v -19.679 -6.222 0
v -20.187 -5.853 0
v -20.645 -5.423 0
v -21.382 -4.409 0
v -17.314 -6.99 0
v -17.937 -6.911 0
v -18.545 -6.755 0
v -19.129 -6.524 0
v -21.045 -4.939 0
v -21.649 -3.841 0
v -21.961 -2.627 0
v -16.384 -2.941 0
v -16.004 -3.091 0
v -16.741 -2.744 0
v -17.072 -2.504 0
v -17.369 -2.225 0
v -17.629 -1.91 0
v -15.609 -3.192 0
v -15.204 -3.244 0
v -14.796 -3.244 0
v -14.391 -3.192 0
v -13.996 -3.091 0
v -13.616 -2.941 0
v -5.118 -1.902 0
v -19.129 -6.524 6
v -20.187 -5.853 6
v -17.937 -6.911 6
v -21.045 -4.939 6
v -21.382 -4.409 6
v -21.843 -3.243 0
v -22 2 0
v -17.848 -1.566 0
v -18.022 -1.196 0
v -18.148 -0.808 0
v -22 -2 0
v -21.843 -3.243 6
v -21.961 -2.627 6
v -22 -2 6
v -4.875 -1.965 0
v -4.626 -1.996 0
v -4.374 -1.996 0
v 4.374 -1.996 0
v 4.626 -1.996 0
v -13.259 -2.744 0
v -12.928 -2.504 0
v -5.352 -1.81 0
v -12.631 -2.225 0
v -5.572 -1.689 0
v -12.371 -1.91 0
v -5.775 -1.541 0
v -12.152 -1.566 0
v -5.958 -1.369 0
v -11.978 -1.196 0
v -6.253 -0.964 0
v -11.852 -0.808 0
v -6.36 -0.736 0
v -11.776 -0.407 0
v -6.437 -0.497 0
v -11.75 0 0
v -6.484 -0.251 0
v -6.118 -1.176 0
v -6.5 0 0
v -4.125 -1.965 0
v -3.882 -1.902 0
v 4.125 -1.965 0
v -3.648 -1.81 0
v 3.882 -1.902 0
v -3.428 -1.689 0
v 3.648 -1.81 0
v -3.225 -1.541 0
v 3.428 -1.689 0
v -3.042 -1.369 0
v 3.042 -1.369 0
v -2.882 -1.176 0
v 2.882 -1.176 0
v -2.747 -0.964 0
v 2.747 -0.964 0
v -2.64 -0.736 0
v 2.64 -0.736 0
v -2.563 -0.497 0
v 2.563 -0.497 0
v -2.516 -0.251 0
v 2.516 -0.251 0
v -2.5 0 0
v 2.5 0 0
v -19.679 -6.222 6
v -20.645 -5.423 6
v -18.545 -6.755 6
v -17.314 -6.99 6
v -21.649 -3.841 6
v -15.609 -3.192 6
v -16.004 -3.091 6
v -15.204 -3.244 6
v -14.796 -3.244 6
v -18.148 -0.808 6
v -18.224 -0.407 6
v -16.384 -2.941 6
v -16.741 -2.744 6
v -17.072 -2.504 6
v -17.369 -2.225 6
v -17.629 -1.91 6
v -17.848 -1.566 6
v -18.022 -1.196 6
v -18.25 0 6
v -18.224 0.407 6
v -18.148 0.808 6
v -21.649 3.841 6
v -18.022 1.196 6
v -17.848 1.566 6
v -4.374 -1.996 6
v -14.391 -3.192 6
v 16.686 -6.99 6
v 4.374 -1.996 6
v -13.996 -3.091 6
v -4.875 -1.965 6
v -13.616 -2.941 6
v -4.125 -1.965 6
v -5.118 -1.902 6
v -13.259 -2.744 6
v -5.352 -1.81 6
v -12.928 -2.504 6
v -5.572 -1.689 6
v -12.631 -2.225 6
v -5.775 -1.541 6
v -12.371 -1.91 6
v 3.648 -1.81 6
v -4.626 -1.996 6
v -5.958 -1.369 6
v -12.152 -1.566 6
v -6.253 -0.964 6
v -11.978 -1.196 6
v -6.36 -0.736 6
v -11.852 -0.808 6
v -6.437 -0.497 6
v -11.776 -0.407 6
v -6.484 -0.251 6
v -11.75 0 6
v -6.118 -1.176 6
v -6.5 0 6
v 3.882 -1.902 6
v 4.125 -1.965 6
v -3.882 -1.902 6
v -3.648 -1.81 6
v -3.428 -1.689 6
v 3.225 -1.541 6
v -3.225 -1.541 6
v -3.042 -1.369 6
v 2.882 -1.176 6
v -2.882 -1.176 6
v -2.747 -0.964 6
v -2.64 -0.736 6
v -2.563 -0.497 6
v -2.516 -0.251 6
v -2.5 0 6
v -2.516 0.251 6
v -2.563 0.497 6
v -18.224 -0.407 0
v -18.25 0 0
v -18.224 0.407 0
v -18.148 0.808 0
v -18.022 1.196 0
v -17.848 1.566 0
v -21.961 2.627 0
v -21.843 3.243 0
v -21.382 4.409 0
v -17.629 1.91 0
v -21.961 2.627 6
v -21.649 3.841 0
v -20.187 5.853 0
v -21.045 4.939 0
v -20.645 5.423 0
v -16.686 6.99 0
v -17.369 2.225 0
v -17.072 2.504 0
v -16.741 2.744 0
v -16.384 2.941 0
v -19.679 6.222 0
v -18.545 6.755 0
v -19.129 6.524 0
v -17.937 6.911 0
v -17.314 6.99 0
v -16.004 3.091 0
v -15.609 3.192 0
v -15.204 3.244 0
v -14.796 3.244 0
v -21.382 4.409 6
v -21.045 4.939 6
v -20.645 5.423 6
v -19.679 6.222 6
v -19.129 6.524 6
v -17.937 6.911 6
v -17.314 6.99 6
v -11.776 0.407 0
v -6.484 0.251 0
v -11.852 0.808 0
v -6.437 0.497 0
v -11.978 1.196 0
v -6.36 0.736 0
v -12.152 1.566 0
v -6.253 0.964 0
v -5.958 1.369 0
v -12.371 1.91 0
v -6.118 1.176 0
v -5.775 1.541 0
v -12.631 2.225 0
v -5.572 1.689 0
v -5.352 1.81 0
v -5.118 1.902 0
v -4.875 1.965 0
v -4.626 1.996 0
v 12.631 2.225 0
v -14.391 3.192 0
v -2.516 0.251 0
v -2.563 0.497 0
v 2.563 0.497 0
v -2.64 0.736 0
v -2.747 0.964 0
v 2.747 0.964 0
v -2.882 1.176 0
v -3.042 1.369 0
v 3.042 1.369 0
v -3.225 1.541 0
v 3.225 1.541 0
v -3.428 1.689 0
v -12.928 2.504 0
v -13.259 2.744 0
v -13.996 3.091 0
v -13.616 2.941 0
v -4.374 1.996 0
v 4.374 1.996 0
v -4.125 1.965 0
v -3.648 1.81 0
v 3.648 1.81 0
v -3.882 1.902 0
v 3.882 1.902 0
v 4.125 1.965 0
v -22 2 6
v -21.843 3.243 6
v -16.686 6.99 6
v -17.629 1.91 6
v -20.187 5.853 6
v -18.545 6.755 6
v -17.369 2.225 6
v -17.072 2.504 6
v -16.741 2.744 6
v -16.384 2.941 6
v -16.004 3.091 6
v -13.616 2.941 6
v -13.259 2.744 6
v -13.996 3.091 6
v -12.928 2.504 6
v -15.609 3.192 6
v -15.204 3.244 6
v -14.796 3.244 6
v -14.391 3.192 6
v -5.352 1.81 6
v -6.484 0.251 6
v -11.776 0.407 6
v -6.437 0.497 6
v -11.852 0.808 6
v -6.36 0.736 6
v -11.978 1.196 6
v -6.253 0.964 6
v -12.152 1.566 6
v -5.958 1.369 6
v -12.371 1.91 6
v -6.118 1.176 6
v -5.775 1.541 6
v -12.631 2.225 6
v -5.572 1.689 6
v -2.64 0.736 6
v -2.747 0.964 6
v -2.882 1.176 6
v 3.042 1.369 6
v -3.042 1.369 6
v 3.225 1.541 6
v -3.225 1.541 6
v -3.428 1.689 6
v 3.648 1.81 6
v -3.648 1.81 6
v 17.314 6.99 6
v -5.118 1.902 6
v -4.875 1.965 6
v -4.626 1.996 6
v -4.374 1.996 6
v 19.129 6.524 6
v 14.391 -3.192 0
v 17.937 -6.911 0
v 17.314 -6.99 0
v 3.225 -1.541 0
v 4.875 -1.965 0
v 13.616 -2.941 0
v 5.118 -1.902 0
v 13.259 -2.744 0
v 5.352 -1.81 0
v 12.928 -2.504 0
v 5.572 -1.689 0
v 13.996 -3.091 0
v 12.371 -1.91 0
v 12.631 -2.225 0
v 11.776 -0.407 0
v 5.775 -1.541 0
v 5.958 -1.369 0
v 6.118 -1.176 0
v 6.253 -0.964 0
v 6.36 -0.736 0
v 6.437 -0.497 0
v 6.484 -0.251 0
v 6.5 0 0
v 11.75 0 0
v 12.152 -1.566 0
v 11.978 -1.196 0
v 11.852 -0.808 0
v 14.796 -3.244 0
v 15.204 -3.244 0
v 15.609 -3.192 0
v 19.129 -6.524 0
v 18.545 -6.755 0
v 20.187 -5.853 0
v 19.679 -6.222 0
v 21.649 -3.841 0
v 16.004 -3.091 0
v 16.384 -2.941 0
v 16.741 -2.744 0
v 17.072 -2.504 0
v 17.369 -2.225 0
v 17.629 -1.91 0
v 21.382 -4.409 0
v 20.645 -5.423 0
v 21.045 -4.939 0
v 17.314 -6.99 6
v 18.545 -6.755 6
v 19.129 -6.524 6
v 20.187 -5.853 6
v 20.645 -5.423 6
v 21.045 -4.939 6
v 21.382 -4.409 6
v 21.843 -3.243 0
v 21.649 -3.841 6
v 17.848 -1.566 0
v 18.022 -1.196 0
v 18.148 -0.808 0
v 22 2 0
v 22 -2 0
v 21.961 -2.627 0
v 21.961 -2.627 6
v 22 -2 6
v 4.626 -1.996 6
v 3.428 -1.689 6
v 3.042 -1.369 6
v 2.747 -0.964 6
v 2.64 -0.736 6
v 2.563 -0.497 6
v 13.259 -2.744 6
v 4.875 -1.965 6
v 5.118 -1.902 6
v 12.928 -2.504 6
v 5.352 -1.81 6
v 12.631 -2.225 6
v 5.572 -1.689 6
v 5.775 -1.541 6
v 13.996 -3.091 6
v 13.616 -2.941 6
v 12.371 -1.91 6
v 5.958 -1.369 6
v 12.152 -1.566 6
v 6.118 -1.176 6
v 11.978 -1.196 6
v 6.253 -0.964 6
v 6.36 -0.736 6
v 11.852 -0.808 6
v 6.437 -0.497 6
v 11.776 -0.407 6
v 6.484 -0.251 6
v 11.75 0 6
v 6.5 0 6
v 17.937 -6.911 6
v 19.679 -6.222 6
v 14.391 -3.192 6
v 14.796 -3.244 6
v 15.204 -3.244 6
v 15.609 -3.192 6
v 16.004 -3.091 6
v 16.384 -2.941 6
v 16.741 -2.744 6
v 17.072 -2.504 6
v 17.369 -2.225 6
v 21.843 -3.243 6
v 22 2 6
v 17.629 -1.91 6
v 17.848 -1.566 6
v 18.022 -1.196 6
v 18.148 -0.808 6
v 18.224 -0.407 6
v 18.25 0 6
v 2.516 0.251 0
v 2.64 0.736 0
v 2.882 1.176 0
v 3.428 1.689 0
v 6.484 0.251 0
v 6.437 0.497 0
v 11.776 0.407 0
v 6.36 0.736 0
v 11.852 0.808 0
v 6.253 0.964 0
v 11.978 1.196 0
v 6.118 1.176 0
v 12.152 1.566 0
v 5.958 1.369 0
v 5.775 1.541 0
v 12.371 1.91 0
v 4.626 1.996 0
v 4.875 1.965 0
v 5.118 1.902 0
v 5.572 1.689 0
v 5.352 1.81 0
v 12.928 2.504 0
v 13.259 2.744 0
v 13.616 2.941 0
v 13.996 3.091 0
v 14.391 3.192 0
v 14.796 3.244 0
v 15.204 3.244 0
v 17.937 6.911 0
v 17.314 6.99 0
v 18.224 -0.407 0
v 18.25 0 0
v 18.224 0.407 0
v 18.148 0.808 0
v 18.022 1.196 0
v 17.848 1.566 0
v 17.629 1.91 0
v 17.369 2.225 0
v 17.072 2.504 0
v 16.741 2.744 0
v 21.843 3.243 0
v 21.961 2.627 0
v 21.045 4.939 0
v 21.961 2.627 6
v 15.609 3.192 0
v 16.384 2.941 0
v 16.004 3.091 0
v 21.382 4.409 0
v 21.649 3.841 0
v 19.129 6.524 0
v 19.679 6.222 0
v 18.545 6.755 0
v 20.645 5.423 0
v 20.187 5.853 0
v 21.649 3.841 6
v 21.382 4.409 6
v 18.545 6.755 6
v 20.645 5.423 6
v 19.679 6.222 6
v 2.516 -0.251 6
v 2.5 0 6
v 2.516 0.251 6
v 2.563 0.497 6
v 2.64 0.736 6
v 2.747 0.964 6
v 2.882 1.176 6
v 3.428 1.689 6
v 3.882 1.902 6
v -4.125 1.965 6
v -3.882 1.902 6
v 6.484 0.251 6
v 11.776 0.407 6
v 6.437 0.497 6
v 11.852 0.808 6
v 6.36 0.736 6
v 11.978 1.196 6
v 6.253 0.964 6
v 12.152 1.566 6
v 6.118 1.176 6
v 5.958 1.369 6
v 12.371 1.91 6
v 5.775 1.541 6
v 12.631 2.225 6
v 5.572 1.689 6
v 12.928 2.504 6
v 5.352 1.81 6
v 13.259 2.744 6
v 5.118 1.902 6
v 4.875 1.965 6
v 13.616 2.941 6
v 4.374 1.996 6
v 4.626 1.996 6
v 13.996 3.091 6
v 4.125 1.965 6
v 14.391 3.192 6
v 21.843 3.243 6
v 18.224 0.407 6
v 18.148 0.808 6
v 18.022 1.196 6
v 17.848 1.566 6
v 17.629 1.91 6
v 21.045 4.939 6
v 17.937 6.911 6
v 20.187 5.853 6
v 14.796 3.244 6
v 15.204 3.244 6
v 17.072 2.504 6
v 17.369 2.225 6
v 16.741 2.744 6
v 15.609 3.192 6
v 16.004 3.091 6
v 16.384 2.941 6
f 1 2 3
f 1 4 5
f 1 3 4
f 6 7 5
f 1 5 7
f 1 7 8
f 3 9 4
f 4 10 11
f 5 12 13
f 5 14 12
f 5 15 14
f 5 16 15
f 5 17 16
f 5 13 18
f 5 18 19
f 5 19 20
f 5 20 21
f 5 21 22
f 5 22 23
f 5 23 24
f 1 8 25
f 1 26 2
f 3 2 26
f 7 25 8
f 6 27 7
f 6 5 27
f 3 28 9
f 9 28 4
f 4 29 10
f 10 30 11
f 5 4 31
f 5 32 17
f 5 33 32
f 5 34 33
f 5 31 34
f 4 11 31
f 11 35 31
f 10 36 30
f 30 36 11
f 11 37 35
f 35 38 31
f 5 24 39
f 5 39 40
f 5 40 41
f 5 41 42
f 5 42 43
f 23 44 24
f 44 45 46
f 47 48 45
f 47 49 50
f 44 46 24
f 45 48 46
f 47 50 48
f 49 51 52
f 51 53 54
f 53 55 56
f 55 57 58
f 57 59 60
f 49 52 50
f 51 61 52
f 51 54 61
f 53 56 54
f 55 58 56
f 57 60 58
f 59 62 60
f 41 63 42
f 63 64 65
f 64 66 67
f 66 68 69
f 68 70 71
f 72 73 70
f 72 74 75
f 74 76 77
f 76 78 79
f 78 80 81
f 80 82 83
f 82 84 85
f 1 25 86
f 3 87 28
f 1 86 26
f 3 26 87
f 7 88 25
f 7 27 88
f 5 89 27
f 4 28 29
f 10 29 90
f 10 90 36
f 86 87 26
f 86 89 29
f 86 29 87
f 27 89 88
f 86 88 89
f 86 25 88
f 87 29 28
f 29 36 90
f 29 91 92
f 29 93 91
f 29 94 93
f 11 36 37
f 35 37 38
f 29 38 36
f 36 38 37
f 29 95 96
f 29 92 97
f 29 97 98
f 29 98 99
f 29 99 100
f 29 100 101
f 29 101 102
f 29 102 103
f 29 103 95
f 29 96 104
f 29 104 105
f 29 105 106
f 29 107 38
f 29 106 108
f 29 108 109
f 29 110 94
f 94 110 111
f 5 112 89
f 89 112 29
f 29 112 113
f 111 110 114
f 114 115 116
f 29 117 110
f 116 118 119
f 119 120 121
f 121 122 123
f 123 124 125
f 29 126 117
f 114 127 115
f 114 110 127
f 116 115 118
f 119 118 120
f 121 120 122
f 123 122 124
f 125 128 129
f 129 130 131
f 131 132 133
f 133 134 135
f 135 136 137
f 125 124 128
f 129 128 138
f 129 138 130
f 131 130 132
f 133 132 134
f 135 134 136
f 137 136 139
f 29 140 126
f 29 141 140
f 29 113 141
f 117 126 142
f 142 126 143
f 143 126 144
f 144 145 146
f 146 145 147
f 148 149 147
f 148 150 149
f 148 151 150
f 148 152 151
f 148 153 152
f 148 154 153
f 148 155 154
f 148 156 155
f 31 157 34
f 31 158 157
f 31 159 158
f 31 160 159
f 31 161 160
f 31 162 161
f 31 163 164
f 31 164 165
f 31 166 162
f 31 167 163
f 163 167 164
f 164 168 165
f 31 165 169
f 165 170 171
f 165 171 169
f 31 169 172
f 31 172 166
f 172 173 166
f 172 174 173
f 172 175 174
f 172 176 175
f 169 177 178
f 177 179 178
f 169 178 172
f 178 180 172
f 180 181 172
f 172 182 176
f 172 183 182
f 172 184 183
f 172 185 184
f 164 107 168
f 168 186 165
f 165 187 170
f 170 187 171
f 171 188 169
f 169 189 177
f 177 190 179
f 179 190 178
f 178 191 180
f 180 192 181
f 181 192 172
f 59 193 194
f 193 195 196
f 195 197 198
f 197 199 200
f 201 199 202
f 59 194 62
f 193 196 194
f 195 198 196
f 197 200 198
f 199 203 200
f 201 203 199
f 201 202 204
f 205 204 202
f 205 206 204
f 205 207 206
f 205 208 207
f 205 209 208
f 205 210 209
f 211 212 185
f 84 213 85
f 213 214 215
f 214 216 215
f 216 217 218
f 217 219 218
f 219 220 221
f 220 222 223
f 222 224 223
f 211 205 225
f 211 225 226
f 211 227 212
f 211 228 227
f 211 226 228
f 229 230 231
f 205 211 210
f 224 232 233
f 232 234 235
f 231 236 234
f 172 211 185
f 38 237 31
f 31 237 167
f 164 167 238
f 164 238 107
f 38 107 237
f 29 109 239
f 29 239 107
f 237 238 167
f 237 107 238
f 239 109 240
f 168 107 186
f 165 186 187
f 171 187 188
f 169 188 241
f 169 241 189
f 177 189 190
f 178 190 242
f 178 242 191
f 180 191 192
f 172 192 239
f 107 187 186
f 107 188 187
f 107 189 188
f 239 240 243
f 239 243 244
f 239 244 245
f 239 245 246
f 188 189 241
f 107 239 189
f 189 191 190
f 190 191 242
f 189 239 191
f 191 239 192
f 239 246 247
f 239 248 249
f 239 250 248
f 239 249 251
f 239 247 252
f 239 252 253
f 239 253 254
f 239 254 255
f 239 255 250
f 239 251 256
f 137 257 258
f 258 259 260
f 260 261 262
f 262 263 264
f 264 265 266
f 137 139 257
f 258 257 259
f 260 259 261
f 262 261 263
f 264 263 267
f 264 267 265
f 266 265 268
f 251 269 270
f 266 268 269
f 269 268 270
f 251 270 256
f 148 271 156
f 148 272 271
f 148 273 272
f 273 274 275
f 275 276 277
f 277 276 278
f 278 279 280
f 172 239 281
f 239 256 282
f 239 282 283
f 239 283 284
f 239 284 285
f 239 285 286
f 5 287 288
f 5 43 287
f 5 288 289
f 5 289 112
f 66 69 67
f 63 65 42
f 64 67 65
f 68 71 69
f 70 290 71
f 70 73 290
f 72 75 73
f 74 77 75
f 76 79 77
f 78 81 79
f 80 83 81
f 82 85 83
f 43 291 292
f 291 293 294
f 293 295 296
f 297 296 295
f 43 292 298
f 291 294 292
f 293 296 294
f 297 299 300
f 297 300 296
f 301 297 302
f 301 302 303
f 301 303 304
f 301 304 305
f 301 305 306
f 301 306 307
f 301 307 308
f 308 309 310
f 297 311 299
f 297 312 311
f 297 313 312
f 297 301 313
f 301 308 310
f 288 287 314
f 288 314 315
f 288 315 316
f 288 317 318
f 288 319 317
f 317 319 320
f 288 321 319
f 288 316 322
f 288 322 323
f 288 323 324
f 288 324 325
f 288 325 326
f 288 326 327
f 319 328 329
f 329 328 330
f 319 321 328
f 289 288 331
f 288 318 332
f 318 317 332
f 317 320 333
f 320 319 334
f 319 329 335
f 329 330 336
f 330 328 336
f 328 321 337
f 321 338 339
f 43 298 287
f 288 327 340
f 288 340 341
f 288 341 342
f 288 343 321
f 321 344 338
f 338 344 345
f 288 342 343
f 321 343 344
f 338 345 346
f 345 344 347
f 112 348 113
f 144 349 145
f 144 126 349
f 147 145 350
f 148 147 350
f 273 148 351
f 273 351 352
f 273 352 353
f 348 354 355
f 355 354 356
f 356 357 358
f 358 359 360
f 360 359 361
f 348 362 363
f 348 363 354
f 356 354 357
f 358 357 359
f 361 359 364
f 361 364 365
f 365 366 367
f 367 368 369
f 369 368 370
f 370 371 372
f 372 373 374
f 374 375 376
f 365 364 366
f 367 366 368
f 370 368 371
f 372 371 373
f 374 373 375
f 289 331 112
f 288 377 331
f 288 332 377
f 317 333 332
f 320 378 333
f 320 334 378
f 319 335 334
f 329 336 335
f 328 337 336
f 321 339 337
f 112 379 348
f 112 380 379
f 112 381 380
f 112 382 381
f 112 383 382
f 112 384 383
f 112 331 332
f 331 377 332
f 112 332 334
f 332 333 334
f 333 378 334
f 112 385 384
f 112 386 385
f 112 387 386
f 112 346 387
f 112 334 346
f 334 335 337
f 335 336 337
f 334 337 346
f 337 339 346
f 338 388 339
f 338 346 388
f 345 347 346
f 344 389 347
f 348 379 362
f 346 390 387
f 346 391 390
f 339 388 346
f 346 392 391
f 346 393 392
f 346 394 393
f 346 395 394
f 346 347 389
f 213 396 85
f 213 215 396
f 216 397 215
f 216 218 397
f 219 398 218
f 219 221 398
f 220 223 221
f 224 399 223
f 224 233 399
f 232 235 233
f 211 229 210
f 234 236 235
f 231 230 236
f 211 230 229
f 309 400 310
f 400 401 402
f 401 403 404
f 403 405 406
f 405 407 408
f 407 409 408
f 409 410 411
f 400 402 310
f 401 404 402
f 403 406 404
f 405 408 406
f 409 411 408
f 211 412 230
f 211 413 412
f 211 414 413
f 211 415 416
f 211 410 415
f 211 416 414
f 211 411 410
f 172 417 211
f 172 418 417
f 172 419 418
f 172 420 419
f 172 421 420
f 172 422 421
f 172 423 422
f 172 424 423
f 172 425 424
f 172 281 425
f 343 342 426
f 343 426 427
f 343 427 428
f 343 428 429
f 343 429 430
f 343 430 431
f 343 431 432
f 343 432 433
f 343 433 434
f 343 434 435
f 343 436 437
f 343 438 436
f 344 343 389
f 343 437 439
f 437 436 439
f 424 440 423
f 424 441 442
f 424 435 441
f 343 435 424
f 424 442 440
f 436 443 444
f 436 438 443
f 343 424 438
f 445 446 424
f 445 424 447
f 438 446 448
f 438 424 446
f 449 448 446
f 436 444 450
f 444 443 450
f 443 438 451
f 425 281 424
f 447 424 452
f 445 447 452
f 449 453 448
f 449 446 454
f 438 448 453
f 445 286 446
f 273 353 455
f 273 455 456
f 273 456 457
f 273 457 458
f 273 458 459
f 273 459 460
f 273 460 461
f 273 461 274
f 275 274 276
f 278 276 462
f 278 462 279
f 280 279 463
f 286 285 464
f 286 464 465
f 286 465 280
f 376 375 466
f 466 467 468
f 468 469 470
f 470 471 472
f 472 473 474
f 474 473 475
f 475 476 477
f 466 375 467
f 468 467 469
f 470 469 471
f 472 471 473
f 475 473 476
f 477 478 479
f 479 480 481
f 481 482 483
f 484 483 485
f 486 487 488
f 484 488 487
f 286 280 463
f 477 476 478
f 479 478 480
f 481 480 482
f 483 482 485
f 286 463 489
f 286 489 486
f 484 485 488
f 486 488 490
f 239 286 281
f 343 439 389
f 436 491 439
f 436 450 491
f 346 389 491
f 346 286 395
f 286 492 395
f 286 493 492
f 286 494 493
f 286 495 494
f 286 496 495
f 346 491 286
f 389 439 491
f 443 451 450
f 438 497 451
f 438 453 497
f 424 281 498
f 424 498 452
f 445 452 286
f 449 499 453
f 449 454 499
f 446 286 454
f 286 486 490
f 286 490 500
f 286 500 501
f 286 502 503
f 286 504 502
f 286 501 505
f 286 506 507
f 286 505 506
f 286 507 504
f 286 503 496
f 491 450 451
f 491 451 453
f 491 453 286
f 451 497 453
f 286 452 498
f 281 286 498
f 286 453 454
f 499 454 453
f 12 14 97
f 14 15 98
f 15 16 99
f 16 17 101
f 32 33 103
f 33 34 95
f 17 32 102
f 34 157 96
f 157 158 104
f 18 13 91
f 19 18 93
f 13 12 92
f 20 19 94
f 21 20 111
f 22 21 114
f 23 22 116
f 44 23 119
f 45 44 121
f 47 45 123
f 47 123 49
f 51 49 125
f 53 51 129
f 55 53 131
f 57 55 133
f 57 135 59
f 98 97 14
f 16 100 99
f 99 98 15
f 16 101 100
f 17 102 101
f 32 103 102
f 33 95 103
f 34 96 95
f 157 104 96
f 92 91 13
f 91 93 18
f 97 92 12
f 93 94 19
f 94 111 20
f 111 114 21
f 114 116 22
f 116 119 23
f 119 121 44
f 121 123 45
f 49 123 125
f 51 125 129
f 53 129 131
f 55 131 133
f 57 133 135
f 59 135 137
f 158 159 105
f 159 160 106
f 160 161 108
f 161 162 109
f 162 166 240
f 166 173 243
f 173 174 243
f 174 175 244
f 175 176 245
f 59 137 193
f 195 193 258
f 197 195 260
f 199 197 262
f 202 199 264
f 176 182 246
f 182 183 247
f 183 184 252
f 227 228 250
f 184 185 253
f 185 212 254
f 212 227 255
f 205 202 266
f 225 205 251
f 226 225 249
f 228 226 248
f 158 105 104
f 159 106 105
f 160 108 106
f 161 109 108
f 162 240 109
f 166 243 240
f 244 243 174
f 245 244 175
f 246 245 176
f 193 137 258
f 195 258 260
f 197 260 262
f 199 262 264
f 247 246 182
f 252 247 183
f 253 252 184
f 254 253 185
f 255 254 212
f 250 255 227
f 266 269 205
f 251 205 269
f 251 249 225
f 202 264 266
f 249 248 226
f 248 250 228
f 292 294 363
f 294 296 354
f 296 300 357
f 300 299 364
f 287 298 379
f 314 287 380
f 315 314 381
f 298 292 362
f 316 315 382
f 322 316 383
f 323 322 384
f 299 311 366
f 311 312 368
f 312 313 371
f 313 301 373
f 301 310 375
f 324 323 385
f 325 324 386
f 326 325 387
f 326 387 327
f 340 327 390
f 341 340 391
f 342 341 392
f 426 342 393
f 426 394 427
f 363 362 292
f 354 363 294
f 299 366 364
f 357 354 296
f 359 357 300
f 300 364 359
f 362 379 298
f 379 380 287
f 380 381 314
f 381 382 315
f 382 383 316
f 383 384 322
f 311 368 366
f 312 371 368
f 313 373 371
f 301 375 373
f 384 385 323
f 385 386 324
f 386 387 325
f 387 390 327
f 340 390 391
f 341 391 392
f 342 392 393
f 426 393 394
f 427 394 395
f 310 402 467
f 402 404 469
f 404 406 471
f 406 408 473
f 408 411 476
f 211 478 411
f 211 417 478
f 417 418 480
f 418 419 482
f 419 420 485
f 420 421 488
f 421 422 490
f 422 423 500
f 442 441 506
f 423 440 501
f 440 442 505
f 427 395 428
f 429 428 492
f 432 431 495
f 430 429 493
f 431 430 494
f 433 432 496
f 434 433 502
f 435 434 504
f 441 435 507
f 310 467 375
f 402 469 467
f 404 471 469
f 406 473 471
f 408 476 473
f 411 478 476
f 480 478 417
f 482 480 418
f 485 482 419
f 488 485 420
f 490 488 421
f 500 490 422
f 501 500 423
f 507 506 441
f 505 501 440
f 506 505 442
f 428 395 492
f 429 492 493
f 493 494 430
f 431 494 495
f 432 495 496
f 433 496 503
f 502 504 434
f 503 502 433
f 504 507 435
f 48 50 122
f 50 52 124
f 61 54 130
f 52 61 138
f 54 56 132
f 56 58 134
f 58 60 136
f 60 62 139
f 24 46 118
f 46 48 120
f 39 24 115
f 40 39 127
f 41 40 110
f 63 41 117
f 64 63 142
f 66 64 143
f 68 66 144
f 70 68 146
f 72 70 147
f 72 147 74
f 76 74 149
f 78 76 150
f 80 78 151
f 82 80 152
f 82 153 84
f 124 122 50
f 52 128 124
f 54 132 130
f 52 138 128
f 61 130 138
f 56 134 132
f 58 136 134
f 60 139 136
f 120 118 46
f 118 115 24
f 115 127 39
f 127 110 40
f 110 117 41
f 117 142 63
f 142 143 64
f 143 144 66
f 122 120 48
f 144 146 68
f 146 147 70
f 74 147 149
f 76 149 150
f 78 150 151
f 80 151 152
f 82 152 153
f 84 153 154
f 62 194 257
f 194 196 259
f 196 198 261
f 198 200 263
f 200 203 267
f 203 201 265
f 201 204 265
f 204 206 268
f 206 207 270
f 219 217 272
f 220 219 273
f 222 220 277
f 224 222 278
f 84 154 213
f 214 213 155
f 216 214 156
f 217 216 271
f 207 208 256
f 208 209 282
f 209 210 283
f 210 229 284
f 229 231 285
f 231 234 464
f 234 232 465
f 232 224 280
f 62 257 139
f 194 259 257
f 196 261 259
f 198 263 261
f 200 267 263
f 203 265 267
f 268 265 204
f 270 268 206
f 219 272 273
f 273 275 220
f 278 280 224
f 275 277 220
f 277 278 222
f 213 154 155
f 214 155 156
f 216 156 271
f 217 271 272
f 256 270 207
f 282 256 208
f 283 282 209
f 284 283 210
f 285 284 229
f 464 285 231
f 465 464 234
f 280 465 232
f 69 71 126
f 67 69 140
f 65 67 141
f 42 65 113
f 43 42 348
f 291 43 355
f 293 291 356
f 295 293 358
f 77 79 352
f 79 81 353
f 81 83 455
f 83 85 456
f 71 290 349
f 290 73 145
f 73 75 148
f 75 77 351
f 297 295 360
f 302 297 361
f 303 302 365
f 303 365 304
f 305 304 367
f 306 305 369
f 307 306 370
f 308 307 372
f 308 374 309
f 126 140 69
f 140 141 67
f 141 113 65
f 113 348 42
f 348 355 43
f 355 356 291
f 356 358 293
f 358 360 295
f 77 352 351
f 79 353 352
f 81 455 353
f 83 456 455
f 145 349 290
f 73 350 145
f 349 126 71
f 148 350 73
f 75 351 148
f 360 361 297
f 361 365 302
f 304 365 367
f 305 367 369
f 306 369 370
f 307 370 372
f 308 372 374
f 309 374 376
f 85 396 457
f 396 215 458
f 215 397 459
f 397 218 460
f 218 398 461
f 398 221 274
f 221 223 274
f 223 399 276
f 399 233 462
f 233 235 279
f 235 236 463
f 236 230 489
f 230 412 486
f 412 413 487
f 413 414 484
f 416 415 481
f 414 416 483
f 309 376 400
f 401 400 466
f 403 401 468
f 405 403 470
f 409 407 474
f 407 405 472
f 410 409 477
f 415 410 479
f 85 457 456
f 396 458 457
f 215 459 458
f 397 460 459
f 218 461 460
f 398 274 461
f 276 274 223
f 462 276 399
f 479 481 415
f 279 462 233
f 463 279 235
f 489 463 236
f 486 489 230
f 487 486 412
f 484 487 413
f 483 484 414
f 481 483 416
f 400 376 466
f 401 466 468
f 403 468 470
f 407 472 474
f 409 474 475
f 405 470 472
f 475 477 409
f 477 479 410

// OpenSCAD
$fn = 50;

difference() {
	union() {
		hull() {
			translate(v = [-17.0, 2.0, 0]) {
				cylinder(h = 6, r = 5);
			}
			translate(v = [17.0, 2.0, 0]) {
				cylinder(h = 6, r = 5);
			}
			translate(v = [-17.0, -2.0, 0]) {
				cylinder(h = 6, r = 5);
			}
			translate(v = [17.0, -2.0, 0]) {
				cylinder(h = 6, r = 5);
			}
		}
	}
	union() {
		translate(v = [-15.0, 0.0, 0]) {
			cylinder(h = 6, r = 3.25);
		}
		translate(v = [15.0, 0.0, 0]) {
			cylinder(h = 6, r = 3.25);
		}
		translate(v = [-4.5, 0, 0.0]) {
			cylinder(h = 6, r = 2.0);
		}
		translate(v = [4.5, 0, 0.0]) {
			cylinder(h = 6, r = 2.0);
		}
	}
}
